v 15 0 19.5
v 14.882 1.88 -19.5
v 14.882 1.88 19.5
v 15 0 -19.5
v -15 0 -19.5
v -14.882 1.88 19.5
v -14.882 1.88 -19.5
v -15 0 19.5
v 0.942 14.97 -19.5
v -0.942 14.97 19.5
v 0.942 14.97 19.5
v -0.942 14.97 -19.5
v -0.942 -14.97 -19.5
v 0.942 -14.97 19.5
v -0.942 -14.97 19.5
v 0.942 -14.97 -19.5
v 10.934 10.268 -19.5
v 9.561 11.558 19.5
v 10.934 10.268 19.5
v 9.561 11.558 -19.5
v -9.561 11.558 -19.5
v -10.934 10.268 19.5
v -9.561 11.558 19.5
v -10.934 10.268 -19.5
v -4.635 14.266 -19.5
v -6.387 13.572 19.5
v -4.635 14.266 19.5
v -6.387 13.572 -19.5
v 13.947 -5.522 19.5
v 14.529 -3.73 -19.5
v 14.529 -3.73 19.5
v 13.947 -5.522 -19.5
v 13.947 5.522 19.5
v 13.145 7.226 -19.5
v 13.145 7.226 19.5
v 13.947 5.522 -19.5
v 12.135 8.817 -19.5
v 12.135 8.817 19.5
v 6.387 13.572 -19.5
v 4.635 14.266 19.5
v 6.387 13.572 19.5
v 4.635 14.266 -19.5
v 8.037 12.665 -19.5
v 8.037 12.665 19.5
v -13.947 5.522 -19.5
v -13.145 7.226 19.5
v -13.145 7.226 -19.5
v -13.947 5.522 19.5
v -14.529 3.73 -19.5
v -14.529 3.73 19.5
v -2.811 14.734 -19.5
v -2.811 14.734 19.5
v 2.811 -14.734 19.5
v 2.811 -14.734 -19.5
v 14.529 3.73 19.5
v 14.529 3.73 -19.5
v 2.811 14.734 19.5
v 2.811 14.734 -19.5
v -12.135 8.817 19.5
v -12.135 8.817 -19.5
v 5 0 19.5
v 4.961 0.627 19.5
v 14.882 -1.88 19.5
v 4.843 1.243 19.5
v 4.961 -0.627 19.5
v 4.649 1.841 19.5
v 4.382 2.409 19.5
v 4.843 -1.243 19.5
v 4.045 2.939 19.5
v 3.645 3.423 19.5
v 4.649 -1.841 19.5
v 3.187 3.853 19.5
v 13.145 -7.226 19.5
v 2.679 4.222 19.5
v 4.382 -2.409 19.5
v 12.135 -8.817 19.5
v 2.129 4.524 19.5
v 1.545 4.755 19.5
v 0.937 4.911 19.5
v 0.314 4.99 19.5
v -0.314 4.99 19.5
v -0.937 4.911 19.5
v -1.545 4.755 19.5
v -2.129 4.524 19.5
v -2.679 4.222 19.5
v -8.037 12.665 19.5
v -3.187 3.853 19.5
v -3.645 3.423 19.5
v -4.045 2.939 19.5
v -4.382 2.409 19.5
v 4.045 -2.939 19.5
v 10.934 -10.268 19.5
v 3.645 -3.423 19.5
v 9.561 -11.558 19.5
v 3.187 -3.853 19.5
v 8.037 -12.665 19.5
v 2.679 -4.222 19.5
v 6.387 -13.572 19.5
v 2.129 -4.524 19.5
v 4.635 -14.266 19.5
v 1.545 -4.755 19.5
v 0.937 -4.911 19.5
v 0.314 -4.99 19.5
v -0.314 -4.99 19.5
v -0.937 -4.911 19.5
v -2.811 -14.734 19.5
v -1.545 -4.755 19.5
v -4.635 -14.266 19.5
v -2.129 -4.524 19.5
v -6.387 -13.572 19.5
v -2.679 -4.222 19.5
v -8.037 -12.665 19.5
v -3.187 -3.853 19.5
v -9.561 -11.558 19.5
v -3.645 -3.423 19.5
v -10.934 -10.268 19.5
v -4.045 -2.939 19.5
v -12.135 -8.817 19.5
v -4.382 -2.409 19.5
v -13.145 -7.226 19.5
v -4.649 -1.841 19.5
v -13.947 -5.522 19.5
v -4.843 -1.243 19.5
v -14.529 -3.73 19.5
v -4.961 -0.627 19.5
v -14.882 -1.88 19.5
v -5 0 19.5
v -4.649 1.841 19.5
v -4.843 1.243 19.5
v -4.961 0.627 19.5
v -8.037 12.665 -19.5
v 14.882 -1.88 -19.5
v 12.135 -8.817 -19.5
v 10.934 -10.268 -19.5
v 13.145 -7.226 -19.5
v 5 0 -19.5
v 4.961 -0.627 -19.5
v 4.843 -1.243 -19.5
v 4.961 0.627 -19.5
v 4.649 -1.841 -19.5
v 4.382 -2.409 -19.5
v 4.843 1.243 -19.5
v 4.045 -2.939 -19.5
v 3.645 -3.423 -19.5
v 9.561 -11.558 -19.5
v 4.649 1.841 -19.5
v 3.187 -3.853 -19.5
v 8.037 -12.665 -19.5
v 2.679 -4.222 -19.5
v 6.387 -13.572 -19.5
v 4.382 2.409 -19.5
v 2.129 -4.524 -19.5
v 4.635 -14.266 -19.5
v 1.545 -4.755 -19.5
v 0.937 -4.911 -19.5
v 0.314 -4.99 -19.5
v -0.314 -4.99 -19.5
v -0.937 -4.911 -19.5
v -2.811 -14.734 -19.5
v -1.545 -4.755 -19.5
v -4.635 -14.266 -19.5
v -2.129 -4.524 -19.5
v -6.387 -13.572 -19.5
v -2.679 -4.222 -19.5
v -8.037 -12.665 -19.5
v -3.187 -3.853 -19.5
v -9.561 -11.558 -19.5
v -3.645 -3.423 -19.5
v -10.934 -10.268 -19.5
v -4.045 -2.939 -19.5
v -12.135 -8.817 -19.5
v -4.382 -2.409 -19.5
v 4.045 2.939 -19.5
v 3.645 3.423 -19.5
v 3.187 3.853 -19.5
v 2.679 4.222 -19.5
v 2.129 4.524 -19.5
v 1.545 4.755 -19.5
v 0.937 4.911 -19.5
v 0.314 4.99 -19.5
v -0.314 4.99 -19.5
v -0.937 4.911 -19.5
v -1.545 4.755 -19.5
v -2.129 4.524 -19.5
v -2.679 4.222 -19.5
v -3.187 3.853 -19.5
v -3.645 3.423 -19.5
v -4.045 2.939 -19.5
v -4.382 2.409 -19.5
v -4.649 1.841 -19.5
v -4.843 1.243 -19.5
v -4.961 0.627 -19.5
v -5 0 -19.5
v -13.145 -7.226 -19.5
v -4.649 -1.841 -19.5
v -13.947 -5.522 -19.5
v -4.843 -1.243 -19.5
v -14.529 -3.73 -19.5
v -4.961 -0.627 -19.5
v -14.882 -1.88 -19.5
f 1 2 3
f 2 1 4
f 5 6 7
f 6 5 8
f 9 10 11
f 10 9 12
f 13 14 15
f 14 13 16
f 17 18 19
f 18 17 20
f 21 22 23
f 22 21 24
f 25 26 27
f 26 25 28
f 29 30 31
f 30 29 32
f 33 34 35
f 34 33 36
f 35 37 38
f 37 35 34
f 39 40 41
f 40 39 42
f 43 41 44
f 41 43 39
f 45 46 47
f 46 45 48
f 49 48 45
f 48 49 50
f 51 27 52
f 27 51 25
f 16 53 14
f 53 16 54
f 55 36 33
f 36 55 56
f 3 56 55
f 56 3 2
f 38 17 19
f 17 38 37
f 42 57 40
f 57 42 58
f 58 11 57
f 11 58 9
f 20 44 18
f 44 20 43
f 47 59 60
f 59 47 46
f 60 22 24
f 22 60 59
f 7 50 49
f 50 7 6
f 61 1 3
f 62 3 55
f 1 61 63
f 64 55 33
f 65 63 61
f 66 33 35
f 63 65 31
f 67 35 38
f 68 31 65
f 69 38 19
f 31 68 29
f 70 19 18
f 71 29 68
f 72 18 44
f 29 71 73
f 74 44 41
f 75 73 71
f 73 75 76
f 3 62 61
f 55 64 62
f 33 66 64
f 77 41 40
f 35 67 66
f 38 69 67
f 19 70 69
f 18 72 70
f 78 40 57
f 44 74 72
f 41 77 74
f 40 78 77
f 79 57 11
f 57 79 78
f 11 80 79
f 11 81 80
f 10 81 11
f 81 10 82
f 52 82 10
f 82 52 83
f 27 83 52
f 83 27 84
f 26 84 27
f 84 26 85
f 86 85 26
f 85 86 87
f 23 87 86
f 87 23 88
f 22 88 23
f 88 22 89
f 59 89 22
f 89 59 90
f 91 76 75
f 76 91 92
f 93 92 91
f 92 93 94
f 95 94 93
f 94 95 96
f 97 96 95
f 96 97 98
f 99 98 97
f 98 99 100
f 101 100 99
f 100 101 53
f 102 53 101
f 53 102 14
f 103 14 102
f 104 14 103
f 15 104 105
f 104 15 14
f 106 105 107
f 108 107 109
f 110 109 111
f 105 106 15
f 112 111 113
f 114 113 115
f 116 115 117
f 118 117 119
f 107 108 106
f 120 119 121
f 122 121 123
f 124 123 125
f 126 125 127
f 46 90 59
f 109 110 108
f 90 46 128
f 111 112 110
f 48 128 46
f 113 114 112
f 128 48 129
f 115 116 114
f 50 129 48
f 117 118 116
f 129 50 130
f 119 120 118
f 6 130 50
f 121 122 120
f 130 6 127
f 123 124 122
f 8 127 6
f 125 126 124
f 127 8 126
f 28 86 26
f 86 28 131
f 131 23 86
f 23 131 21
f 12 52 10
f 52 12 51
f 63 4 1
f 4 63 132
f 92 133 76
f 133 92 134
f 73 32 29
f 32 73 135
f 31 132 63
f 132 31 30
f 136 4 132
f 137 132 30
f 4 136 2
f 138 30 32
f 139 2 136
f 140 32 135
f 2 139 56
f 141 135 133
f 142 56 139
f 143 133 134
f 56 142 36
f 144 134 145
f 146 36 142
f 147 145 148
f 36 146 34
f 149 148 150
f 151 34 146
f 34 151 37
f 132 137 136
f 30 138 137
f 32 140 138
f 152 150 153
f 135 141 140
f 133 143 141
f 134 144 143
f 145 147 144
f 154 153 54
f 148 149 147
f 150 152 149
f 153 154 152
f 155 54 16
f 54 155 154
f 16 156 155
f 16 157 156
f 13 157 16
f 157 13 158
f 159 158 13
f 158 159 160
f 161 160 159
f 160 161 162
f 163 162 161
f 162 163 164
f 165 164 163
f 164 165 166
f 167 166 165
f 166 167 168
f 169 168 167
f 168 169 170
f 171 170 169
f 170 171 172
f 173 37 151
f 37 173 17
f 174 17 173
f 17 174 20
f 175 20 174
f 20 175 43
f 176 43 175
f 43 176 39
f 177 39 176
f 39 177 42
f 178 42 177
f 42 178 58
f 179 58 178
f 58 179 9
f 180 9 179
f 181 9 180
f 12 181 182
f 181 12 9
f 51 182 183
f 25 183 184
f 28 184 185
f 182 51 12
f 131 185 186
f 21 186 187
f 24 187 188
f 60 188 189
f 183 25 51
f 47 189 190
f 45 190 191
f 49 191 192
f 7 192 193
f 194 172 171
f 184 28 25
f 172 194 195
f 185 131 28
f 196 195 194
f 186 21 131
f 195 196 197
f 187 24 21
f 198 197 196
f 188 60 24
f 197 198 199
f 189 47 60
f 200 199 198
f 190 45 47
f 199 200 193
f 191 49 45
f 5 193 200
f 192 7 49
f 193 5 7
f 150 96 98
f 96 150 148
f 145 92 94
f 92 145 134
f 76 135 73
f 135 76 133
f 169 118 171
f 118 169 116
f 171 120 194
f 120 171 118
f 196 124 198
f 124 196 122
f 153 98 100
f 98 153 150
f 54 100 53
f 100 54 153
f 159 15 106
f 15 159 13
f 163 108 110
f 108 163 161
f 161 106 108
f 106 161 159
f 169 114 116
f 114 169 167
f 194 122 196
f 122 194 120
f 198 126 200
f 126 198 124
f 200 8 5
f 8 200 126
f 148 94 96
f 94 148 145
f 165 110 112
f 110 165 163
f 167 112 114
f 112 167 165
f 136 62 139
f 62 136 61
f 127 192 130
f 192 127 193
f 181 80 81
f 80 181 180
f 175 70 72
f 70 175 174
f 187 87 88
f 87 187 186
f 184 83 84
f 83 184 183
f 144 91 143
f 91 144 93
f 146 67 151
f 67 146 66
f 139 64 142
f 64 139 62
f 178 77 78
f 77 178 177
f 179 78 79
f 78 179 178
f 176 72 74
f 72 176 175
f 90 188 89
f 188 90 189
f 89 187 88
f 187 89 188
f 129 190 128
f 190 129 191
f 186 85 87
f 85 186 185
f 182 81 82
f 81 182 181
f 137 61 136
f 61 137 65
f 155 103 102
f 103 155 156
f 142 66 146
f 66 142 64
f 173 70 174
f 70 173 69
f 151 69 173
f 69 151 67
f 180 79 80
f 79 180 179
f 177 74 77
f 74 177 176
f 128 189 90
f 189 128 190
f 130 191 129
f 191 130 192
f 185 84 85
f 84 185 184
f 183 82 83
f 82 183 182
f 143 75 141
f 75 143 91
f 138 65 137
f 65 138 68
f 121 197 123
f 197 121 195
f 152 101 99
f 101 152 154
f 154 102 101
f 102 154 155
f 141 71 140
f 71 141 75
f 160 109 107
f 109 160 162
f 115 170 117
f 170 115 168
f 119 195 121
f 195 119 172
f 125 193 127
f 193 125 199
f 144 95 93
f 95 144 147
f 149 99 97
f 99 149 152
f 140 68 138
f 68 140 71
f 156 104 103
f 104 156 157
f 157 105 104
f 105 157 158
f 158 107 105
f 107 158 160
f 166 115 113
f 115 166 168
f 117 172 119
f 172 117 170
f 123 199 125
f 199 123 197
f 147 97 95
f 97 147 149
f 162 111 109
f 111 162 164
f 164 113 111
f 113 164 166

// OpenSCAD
$fn = 50;


difference() {
	union() {
		translate(v = [0, 0, -19.5000000000]) {
			cylinder(h = 39, r = 15.0000000000);
		}
	}
	union() {
		translate(v = [0, 0, -100.0000000000]) {
			cylinder(h = 200, r = 5.0000000000);
		}
	}
}
